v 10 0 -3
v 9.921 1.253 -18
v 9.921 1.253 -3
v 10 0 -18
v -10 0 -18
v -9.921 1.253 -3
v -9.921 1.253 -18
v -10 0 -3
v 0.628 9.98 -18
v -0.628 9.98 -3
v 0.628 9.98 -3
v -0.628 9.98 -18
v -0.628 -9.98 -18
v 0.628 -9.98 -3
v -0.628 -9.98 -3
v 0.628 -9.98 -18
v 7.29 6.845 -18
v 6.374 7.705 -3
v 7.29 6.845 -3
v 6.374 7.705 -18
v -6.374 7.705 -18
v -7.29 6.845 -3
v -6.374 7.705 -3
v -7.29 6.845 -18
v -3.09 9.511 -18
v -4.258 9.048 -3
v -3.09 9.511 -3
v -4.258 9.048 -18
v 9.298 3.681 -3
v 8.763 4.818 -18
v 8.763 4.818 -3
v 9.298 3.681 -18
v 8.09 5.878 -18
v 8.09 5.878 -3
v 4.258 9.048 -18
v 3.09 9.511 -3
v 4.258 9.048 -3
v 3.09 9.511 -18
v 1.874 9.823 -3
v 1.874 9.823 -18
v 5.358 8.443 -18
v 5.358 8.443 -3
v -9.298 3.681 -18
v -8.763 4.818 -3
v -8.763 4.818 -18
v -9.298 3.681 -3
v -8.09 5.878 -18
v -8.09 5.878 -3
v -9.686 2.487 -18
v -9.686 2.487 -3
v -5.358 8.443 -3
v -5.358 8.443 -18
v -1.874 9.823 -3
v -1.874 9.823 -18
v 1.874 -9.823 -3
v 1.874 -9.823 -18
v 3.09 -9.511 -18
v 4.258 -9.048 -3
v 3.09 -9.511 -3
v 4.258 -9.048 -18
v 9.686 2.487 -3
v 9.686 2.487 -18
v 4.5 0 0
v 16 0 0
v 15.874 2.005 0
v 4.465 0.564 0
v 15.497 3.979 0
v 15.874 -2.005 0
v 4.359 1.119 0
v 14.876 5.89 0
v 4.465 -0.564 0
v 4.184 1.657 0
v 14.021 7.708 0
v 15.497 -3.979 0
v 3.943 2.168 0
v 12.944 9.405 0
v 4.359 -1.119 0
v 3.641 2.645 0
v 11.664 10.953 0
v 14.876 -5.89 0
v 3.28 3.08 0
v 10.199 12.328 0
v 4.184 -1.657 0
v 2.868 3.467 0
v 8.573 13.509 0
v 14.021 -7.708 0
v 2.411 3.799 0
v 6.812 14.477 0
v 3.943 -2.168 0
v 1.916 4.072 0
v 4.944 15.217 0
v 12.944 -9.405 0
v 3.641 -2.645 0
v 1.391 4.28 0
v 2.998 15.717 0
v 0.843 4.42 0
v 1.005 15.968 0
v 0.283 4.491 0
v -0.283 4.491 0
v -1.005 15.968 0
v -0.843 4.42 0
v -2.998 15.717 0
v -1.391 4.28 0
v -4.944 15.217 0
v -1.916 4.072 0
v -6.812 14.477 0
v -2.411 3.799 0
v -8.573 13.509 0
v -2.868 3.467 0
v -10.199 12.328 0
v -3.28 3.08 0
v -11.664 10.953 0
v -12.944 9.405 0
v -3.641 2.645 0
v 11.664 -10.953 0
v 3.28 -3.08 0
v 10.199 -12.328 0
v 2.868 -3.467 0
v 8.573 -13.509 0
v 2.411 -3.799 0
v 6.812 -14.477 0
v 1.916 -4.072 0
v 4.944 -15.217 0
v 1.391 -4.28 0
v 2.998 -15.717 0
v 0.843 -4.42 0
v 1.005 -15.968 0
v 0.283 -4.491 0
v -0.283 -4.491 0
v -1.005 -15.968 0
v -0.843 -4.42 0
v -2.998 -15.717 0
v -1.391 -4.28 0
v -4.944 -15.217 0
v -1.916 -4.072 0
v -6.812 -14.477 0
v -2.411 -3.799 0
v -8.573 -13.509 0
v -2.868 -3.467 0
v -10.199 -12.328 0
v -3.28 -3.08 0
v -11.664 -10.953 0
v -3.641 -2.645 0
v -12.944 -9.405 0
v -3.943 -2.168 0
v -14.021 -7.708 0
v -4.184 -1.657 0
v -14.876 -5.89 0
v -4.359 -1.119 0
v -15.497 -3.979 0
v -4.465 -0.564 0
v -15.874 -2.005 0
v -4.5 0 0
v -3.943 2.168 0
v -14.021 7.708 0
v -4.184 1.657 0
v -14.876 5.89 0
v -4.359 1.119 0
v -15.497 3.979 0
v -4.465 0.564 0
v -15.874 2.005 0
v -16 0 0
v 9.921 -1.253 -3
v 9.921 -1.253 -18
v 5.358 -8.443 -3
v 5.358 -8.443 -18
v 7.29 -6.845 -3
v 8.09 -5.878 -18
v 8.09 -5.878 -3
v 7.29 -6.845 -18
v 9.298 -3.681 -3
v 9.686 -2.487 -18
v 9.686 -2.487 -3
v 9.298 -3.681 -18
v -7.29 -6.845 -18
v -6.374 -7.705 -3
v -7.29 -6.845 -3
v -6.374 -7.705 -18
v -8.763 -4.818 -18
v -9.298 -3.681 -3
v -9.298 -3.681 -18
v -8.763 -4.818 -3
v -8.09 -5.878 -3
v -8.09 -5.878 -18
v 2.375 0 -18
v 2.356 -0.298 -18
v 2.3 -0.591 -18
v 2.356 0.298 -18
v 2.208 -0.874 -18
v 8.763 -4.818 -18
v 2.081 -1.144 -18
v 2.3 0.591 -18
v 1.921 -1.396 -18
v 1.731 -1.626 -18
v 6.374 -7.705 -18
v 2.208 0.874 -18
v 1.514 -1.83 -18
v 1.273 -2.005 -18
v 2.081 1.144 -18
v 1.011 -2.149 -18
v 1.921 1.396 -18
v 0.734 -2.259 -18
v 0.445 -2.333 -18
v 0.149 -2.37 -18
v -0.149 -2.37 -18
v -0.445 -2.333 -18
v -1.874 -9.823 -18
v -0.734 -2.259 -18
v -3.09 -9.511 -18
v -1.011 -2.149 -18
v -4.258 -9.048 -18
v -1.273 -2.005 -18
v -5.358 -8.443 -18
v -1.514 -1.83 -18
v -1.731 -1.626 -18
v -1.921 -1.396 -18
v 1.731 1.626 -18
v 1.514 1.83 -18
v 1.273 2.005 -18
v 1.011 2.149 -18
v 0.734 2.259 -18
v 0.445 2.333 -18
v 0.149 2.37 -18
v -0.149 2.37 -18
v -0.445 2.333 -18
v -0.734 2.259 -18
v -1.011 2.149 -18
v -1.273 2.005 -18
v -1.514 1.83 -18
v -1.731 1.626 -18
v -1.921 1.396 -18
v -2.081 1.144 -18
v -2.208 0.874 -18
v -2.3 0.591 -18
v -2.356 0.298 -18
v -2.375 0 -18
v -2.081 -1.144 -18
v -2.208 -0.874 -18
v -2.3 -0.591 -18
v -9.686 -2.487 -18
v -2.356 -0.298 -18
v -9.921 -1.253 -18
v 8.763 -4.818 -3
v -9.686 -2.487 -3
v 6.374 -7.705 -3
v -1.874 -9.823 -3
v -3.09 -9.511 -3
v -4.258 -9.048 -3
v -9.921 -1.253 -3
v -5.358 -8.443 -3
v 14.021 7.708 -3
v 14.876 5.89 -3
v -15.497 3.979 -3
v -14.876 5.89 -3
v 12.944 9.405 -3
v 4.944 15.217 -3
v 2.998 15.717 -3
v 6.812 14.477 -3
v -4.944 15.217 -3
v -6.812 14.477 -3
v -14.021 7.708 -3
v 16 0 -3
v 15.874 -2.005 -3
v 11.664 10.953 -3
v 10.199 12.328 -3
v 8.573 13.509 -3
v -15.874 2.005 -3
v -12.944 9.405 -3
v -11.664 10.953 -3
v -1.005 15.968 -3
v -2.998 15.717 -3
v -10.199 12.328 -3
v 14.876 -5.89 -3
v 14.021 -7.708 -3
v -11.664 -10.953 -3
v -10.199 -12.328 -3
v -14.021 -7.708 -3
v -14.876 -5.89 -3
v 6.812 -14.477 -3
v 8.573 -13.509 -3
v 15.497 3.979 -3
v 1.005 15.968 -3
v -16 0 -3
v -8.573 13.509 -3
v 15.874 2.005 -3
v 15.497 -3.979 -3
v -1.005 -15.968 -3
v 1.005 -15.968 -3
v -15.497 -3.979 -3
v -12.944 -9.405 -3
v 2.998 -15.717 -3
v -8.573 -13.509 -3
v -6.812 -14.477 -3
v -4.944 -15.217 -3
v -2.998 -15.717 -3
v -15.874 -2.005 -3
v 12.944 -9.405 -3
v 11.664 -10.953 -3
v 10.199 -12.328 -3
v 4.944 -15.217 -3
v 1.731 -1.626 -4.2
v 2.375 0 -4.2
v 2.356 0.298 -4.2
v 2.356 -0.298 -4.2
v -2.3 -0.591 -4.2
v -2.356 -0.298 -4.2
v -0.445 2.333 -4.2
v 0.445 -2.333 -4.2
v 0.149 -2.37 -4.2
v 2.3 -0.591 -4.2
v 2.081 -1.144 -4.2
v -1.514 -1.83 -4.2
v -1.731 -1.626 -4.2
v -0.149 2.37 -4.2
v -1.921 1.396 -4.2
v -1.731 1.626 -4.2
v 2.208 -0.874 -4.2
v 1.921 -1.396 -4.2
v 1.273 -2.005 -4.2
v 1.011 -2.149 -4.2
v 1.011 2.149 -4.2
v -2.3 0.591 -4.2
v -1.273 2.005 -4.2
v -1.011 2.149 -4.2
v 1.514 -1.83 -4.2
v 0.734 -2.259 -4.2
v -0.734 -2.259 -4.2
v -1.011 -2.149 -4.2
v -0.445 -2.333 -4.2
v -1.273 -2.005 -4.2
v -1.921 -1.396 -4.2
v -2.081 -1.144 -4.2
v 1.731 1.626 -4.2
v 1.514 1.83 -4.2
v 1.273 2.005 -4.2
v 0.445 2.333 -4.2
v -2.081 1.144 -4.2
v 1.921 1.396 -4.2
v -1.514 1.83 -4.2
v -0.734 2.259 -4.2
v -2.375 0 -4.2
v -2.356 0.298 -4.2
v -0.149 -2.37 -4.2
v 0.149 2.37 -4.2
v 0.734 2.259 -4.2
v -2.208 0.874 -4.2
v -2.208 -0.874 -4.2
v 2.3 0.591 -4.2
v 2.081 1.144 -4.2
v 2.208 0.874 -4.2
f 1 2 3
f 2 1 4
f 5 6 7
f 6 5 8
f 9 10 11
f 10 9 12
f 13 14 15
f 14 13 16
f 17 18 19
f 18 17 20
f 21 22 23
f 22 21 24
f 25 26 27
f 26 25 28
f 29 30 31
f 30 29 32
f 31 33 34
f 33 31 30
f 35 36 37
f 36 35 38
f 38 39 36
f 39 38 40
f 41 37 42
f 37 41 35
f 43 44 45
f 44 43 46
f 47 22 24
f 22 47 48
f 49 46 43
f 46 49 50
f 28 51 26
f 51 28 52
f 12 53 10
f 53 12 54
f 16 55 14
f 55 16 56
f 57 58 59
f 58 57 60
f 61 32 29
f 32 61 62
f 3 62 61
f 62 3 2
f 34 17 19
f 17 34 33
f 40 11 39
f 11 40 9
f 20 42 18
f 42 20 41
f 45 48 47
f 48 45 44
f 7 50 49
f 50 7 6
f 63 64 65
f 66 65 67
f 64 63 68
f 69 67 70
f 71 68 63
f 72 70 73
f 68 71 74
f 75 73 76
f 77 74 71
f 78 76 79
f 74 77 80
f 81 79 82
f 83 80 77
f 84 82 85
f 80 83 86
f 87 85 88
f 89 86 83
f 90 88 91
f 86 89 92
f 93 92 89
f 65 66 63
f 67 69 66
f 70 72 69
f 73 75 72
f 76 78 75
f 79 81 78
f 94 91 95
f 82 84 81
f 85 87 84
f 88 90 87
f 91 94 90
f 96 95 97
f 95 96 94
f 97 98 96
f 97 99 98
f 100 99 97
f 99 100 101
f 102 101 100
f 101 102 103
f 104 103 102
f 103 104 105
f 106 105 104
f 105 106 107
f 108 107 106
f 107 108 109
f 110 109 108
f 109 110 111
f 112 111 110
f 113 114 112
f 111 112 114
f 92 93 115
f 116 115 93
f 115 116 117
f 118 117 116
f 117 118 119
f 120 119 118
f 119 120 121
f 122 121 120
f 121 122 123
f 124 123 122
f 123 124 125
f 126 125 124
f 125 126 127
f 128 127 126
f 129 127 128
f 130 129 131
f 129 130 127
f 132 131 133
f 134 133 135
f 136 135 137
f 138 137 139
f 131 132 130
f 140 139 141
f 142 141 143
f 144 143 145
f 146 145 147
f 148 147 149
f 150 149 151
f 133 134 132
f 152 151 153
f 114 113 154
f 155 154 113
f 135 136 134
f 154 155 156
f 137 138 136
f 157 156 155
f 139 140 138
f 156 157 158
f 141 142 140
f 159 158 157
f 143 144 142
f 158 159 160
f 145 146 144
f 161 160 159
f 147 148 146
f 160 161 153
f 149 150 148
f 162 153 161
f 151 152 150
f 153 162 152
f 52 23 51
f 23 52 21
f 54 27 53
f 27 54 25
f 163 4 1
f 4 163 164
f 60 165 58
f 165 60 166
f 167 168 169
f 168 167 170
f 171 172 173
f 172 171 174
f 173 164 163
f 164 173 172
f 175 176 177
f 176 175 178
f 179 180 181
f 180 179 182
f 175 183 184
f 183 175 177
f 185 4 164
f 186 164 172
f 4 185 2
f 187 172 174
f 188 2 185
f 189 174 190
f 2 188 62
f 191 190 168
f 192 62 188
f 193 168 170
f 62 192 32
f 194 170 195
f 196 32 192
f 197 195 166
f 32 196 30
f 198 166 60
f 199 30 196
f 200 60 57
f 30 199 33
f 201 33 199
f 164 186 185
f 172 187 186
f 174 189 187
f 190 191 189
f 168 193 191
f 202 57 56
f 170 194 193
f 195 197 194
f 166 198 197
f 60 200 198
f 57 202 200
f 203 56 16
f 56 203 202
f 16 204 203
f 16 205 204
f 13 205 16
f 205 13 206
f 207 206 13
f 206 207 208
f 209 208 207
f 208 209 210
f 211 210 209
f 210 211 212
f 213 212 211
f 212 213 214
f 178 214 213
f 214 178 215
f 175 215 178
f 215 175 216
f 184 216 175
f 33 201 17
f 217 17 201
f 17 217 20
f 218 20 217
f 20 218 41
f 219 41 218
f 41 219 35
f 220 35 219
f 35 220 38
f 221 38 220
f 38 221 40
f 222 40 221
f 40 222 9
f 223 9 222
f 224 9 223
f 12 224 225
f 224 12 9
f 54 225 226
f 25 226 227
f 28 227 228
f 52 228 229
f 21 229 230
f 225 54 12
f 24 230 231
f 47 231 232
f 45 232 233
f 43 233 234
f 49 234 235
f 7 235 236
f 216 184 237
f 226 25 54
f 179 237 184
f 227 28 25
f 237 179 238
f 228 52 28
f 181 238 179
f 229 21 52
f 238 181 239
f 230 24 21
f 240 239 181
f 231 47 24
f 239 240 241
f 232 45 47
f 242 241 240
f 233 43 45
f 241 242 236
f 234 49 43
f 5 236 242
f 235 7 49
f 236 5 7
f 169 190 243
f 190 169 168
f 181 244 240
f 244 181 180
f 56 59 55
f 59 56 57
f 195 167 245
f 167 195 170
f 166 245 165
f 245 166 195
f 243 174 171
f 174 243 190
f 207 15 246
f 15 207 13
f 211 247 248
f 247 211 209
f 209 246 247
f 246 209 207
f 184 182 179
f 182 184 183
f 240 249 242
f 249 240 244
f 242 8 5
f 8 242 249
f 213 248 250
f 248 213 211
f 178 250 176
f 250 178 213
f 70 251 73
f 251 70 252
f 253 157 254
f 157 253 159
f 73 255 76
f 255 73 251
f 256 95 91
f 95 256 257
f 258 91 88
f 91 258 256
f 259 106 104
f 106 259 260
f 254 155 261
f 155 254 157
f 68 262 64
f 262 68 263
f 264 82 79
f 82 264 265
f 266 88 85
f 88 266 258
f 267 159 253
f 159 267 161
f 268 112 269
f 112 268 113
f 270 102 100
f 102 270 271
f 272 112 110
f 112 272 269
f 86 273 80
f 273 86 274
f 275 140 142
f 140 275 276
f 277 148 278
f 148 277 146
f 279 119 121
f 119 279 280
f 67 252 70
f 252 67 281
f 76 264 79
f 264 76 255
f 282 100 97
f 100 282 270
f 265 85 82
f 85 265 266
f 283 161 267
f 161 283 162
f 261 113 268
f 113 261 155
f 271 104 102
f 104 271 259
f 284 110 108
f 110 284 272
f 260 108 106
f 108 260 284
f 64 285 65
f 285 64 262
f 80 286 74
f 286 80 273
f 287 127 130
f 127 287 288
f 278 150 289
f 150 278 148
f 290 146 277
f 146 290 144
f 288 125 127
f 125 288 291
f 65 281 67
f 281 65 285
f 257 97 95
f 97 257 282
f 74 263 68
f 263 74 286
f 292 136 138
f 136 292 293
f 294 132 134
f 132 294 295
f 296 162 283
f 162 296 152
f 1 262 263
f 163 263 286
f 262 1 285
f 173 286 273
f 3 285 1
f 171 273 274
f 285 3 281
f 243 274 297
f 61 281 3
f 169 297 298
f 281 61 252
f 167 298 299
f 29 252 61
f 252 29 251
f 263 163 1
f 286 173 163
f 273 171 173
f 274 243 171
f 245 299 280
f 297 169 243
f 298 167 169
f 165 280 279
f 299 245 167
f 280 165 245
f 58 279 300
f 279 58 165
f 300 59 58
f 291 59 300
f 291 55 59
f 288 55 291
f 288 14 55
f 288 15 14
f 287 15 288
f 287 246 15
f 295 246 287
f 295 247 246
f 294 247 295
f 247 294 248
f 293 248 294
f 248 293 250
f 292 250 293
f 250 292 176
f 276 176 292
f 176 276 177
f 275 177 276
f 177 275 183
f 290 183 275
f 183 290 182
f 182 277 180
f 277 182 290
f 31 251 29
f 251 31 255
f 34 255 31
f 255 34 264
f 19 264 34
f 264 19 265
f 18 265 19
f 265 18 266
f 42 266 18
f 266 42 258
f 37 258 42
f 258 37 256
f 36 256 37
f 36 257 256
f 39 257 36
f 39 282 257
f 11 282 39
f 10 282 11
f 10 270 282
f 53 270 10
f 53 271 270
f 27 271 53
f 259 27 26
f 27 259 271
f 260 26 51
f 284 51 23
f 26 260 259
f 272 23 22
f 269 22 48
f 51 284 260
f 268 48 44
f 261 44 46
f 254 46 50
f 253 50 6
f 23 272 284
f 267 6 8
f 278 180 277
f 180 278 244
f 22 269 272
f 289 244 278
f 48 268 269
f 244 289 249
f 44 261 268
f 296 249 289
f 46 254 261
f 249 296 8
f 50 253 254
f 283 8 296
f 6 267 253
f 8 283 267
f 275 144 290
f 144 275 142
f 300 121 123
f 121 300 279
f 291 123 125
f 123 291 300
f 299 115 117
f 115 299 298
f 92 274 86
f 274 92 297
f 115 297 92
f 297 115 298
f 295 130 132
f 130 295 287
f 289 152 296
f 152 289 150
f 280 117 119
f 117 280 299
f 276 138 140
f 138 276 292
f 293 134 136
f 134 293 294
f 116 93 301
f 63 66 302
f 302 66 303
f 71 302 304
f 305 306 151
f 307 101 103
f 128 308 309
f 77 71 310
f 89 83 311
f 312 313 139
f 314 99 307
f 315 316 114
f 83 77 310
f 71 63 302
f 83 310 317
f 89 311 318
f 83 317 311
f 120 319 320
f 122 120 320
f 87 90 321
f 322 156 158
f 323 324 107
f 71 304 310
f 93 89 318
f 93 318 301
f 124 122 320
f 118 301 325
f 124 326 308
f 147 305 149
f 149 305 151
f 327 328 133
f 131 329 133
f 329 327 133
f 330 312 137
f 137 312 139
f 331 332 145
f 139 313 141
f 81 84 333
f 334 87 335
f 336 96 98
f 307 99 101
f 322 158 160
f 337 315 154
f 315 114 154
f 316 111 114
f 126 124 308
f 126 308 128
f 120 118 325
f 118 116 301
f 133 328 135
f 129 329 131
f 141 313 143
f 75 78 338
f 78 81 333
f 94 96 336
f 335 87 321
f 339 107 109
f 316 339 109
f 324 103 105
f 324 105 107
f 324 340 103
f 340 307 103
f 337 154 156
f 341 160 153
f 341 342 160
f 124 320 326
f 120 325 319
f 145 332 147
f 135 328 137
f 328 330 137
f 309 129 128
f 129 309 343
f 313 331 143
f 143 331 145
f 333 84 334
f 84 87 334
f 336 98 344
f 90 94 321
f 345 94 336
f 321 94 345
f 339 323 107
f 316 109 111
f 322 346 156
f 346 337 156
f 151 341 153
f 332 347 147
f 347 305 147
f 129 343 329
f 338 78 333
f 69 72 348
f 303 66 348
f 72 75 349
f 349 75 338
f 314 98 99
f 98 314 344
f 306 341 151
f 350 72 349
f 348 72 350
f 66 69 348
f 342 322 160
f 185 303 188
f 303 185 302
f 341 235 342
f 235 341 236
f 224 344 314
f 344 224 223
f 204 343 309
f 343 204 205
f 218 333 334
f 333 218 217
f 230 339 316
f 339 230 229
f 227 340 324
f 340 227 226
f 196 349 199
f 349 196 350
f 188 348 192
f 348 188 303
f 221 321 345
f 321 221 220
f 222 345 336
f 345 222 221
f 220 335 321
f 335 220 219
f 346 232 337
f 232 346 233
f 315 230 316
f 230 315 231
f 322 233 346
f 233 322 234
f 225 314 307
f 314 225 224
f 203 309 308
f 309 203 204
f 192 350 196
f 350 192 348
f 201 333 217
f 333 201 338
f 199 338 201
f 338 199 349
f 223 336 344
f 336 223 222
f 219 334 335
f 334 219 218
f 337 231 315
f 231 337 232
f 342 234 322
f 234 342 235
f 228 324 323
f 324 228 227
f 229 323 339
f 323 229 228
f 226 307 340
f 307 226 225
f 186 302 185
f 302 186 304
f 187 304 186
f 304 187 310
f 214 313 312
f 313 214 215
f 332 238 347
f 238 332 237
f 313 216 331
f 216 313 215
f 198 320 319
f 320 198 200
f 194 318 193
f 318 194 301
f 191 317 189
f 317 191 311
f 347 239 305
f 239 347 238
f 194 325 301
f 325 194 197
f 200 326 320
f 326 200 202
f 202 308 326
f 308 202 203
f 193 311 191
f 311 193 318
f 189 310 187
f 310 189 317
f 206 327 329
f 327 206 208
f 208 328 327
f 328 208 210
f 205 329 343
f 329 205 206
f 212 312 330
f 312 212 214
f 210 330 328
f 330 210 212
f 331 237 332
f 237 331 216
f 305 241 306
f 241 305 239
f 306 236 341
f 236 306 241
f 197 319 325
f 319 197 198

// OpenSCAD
$fn = 50;


difference() {
	union() {
		translate(v = [0, 0, -18.0000000000]) {
			cylinder(h = 18, r = 10.0000000000);
		}
		translate(v = [0, 0, -3.0000000000]) {
			cylinder(h = 3, r = 16.0000000000);
		}
	}
	union() {
		translate(v = [0, 0, 0]) {
			rotate(a = [0, 0, 0]) {
				difference() {
					union() {
						#translate(v = [0, 0, -18.0000000000]) {
							cylinder(h = 18, r = 2.2500000000);
						}
						#translate(v = [0, 0, -4.2000000000]) {
							cylinder(h = 4.2000000000, r1 = 2.3750000000, r2 = 4.5000000000);
						}
						#translate(v = [0, 0, -18.0000000000]) {
							cylinder(h = 18, r = 2.3750000000);
						}
						#translate(v = [0, 0, -18.0000000000]) {
							cylinder(h = 18, r = 2.2500000000);
						}
					}
					union();
				}
			}
		}
	}
}
